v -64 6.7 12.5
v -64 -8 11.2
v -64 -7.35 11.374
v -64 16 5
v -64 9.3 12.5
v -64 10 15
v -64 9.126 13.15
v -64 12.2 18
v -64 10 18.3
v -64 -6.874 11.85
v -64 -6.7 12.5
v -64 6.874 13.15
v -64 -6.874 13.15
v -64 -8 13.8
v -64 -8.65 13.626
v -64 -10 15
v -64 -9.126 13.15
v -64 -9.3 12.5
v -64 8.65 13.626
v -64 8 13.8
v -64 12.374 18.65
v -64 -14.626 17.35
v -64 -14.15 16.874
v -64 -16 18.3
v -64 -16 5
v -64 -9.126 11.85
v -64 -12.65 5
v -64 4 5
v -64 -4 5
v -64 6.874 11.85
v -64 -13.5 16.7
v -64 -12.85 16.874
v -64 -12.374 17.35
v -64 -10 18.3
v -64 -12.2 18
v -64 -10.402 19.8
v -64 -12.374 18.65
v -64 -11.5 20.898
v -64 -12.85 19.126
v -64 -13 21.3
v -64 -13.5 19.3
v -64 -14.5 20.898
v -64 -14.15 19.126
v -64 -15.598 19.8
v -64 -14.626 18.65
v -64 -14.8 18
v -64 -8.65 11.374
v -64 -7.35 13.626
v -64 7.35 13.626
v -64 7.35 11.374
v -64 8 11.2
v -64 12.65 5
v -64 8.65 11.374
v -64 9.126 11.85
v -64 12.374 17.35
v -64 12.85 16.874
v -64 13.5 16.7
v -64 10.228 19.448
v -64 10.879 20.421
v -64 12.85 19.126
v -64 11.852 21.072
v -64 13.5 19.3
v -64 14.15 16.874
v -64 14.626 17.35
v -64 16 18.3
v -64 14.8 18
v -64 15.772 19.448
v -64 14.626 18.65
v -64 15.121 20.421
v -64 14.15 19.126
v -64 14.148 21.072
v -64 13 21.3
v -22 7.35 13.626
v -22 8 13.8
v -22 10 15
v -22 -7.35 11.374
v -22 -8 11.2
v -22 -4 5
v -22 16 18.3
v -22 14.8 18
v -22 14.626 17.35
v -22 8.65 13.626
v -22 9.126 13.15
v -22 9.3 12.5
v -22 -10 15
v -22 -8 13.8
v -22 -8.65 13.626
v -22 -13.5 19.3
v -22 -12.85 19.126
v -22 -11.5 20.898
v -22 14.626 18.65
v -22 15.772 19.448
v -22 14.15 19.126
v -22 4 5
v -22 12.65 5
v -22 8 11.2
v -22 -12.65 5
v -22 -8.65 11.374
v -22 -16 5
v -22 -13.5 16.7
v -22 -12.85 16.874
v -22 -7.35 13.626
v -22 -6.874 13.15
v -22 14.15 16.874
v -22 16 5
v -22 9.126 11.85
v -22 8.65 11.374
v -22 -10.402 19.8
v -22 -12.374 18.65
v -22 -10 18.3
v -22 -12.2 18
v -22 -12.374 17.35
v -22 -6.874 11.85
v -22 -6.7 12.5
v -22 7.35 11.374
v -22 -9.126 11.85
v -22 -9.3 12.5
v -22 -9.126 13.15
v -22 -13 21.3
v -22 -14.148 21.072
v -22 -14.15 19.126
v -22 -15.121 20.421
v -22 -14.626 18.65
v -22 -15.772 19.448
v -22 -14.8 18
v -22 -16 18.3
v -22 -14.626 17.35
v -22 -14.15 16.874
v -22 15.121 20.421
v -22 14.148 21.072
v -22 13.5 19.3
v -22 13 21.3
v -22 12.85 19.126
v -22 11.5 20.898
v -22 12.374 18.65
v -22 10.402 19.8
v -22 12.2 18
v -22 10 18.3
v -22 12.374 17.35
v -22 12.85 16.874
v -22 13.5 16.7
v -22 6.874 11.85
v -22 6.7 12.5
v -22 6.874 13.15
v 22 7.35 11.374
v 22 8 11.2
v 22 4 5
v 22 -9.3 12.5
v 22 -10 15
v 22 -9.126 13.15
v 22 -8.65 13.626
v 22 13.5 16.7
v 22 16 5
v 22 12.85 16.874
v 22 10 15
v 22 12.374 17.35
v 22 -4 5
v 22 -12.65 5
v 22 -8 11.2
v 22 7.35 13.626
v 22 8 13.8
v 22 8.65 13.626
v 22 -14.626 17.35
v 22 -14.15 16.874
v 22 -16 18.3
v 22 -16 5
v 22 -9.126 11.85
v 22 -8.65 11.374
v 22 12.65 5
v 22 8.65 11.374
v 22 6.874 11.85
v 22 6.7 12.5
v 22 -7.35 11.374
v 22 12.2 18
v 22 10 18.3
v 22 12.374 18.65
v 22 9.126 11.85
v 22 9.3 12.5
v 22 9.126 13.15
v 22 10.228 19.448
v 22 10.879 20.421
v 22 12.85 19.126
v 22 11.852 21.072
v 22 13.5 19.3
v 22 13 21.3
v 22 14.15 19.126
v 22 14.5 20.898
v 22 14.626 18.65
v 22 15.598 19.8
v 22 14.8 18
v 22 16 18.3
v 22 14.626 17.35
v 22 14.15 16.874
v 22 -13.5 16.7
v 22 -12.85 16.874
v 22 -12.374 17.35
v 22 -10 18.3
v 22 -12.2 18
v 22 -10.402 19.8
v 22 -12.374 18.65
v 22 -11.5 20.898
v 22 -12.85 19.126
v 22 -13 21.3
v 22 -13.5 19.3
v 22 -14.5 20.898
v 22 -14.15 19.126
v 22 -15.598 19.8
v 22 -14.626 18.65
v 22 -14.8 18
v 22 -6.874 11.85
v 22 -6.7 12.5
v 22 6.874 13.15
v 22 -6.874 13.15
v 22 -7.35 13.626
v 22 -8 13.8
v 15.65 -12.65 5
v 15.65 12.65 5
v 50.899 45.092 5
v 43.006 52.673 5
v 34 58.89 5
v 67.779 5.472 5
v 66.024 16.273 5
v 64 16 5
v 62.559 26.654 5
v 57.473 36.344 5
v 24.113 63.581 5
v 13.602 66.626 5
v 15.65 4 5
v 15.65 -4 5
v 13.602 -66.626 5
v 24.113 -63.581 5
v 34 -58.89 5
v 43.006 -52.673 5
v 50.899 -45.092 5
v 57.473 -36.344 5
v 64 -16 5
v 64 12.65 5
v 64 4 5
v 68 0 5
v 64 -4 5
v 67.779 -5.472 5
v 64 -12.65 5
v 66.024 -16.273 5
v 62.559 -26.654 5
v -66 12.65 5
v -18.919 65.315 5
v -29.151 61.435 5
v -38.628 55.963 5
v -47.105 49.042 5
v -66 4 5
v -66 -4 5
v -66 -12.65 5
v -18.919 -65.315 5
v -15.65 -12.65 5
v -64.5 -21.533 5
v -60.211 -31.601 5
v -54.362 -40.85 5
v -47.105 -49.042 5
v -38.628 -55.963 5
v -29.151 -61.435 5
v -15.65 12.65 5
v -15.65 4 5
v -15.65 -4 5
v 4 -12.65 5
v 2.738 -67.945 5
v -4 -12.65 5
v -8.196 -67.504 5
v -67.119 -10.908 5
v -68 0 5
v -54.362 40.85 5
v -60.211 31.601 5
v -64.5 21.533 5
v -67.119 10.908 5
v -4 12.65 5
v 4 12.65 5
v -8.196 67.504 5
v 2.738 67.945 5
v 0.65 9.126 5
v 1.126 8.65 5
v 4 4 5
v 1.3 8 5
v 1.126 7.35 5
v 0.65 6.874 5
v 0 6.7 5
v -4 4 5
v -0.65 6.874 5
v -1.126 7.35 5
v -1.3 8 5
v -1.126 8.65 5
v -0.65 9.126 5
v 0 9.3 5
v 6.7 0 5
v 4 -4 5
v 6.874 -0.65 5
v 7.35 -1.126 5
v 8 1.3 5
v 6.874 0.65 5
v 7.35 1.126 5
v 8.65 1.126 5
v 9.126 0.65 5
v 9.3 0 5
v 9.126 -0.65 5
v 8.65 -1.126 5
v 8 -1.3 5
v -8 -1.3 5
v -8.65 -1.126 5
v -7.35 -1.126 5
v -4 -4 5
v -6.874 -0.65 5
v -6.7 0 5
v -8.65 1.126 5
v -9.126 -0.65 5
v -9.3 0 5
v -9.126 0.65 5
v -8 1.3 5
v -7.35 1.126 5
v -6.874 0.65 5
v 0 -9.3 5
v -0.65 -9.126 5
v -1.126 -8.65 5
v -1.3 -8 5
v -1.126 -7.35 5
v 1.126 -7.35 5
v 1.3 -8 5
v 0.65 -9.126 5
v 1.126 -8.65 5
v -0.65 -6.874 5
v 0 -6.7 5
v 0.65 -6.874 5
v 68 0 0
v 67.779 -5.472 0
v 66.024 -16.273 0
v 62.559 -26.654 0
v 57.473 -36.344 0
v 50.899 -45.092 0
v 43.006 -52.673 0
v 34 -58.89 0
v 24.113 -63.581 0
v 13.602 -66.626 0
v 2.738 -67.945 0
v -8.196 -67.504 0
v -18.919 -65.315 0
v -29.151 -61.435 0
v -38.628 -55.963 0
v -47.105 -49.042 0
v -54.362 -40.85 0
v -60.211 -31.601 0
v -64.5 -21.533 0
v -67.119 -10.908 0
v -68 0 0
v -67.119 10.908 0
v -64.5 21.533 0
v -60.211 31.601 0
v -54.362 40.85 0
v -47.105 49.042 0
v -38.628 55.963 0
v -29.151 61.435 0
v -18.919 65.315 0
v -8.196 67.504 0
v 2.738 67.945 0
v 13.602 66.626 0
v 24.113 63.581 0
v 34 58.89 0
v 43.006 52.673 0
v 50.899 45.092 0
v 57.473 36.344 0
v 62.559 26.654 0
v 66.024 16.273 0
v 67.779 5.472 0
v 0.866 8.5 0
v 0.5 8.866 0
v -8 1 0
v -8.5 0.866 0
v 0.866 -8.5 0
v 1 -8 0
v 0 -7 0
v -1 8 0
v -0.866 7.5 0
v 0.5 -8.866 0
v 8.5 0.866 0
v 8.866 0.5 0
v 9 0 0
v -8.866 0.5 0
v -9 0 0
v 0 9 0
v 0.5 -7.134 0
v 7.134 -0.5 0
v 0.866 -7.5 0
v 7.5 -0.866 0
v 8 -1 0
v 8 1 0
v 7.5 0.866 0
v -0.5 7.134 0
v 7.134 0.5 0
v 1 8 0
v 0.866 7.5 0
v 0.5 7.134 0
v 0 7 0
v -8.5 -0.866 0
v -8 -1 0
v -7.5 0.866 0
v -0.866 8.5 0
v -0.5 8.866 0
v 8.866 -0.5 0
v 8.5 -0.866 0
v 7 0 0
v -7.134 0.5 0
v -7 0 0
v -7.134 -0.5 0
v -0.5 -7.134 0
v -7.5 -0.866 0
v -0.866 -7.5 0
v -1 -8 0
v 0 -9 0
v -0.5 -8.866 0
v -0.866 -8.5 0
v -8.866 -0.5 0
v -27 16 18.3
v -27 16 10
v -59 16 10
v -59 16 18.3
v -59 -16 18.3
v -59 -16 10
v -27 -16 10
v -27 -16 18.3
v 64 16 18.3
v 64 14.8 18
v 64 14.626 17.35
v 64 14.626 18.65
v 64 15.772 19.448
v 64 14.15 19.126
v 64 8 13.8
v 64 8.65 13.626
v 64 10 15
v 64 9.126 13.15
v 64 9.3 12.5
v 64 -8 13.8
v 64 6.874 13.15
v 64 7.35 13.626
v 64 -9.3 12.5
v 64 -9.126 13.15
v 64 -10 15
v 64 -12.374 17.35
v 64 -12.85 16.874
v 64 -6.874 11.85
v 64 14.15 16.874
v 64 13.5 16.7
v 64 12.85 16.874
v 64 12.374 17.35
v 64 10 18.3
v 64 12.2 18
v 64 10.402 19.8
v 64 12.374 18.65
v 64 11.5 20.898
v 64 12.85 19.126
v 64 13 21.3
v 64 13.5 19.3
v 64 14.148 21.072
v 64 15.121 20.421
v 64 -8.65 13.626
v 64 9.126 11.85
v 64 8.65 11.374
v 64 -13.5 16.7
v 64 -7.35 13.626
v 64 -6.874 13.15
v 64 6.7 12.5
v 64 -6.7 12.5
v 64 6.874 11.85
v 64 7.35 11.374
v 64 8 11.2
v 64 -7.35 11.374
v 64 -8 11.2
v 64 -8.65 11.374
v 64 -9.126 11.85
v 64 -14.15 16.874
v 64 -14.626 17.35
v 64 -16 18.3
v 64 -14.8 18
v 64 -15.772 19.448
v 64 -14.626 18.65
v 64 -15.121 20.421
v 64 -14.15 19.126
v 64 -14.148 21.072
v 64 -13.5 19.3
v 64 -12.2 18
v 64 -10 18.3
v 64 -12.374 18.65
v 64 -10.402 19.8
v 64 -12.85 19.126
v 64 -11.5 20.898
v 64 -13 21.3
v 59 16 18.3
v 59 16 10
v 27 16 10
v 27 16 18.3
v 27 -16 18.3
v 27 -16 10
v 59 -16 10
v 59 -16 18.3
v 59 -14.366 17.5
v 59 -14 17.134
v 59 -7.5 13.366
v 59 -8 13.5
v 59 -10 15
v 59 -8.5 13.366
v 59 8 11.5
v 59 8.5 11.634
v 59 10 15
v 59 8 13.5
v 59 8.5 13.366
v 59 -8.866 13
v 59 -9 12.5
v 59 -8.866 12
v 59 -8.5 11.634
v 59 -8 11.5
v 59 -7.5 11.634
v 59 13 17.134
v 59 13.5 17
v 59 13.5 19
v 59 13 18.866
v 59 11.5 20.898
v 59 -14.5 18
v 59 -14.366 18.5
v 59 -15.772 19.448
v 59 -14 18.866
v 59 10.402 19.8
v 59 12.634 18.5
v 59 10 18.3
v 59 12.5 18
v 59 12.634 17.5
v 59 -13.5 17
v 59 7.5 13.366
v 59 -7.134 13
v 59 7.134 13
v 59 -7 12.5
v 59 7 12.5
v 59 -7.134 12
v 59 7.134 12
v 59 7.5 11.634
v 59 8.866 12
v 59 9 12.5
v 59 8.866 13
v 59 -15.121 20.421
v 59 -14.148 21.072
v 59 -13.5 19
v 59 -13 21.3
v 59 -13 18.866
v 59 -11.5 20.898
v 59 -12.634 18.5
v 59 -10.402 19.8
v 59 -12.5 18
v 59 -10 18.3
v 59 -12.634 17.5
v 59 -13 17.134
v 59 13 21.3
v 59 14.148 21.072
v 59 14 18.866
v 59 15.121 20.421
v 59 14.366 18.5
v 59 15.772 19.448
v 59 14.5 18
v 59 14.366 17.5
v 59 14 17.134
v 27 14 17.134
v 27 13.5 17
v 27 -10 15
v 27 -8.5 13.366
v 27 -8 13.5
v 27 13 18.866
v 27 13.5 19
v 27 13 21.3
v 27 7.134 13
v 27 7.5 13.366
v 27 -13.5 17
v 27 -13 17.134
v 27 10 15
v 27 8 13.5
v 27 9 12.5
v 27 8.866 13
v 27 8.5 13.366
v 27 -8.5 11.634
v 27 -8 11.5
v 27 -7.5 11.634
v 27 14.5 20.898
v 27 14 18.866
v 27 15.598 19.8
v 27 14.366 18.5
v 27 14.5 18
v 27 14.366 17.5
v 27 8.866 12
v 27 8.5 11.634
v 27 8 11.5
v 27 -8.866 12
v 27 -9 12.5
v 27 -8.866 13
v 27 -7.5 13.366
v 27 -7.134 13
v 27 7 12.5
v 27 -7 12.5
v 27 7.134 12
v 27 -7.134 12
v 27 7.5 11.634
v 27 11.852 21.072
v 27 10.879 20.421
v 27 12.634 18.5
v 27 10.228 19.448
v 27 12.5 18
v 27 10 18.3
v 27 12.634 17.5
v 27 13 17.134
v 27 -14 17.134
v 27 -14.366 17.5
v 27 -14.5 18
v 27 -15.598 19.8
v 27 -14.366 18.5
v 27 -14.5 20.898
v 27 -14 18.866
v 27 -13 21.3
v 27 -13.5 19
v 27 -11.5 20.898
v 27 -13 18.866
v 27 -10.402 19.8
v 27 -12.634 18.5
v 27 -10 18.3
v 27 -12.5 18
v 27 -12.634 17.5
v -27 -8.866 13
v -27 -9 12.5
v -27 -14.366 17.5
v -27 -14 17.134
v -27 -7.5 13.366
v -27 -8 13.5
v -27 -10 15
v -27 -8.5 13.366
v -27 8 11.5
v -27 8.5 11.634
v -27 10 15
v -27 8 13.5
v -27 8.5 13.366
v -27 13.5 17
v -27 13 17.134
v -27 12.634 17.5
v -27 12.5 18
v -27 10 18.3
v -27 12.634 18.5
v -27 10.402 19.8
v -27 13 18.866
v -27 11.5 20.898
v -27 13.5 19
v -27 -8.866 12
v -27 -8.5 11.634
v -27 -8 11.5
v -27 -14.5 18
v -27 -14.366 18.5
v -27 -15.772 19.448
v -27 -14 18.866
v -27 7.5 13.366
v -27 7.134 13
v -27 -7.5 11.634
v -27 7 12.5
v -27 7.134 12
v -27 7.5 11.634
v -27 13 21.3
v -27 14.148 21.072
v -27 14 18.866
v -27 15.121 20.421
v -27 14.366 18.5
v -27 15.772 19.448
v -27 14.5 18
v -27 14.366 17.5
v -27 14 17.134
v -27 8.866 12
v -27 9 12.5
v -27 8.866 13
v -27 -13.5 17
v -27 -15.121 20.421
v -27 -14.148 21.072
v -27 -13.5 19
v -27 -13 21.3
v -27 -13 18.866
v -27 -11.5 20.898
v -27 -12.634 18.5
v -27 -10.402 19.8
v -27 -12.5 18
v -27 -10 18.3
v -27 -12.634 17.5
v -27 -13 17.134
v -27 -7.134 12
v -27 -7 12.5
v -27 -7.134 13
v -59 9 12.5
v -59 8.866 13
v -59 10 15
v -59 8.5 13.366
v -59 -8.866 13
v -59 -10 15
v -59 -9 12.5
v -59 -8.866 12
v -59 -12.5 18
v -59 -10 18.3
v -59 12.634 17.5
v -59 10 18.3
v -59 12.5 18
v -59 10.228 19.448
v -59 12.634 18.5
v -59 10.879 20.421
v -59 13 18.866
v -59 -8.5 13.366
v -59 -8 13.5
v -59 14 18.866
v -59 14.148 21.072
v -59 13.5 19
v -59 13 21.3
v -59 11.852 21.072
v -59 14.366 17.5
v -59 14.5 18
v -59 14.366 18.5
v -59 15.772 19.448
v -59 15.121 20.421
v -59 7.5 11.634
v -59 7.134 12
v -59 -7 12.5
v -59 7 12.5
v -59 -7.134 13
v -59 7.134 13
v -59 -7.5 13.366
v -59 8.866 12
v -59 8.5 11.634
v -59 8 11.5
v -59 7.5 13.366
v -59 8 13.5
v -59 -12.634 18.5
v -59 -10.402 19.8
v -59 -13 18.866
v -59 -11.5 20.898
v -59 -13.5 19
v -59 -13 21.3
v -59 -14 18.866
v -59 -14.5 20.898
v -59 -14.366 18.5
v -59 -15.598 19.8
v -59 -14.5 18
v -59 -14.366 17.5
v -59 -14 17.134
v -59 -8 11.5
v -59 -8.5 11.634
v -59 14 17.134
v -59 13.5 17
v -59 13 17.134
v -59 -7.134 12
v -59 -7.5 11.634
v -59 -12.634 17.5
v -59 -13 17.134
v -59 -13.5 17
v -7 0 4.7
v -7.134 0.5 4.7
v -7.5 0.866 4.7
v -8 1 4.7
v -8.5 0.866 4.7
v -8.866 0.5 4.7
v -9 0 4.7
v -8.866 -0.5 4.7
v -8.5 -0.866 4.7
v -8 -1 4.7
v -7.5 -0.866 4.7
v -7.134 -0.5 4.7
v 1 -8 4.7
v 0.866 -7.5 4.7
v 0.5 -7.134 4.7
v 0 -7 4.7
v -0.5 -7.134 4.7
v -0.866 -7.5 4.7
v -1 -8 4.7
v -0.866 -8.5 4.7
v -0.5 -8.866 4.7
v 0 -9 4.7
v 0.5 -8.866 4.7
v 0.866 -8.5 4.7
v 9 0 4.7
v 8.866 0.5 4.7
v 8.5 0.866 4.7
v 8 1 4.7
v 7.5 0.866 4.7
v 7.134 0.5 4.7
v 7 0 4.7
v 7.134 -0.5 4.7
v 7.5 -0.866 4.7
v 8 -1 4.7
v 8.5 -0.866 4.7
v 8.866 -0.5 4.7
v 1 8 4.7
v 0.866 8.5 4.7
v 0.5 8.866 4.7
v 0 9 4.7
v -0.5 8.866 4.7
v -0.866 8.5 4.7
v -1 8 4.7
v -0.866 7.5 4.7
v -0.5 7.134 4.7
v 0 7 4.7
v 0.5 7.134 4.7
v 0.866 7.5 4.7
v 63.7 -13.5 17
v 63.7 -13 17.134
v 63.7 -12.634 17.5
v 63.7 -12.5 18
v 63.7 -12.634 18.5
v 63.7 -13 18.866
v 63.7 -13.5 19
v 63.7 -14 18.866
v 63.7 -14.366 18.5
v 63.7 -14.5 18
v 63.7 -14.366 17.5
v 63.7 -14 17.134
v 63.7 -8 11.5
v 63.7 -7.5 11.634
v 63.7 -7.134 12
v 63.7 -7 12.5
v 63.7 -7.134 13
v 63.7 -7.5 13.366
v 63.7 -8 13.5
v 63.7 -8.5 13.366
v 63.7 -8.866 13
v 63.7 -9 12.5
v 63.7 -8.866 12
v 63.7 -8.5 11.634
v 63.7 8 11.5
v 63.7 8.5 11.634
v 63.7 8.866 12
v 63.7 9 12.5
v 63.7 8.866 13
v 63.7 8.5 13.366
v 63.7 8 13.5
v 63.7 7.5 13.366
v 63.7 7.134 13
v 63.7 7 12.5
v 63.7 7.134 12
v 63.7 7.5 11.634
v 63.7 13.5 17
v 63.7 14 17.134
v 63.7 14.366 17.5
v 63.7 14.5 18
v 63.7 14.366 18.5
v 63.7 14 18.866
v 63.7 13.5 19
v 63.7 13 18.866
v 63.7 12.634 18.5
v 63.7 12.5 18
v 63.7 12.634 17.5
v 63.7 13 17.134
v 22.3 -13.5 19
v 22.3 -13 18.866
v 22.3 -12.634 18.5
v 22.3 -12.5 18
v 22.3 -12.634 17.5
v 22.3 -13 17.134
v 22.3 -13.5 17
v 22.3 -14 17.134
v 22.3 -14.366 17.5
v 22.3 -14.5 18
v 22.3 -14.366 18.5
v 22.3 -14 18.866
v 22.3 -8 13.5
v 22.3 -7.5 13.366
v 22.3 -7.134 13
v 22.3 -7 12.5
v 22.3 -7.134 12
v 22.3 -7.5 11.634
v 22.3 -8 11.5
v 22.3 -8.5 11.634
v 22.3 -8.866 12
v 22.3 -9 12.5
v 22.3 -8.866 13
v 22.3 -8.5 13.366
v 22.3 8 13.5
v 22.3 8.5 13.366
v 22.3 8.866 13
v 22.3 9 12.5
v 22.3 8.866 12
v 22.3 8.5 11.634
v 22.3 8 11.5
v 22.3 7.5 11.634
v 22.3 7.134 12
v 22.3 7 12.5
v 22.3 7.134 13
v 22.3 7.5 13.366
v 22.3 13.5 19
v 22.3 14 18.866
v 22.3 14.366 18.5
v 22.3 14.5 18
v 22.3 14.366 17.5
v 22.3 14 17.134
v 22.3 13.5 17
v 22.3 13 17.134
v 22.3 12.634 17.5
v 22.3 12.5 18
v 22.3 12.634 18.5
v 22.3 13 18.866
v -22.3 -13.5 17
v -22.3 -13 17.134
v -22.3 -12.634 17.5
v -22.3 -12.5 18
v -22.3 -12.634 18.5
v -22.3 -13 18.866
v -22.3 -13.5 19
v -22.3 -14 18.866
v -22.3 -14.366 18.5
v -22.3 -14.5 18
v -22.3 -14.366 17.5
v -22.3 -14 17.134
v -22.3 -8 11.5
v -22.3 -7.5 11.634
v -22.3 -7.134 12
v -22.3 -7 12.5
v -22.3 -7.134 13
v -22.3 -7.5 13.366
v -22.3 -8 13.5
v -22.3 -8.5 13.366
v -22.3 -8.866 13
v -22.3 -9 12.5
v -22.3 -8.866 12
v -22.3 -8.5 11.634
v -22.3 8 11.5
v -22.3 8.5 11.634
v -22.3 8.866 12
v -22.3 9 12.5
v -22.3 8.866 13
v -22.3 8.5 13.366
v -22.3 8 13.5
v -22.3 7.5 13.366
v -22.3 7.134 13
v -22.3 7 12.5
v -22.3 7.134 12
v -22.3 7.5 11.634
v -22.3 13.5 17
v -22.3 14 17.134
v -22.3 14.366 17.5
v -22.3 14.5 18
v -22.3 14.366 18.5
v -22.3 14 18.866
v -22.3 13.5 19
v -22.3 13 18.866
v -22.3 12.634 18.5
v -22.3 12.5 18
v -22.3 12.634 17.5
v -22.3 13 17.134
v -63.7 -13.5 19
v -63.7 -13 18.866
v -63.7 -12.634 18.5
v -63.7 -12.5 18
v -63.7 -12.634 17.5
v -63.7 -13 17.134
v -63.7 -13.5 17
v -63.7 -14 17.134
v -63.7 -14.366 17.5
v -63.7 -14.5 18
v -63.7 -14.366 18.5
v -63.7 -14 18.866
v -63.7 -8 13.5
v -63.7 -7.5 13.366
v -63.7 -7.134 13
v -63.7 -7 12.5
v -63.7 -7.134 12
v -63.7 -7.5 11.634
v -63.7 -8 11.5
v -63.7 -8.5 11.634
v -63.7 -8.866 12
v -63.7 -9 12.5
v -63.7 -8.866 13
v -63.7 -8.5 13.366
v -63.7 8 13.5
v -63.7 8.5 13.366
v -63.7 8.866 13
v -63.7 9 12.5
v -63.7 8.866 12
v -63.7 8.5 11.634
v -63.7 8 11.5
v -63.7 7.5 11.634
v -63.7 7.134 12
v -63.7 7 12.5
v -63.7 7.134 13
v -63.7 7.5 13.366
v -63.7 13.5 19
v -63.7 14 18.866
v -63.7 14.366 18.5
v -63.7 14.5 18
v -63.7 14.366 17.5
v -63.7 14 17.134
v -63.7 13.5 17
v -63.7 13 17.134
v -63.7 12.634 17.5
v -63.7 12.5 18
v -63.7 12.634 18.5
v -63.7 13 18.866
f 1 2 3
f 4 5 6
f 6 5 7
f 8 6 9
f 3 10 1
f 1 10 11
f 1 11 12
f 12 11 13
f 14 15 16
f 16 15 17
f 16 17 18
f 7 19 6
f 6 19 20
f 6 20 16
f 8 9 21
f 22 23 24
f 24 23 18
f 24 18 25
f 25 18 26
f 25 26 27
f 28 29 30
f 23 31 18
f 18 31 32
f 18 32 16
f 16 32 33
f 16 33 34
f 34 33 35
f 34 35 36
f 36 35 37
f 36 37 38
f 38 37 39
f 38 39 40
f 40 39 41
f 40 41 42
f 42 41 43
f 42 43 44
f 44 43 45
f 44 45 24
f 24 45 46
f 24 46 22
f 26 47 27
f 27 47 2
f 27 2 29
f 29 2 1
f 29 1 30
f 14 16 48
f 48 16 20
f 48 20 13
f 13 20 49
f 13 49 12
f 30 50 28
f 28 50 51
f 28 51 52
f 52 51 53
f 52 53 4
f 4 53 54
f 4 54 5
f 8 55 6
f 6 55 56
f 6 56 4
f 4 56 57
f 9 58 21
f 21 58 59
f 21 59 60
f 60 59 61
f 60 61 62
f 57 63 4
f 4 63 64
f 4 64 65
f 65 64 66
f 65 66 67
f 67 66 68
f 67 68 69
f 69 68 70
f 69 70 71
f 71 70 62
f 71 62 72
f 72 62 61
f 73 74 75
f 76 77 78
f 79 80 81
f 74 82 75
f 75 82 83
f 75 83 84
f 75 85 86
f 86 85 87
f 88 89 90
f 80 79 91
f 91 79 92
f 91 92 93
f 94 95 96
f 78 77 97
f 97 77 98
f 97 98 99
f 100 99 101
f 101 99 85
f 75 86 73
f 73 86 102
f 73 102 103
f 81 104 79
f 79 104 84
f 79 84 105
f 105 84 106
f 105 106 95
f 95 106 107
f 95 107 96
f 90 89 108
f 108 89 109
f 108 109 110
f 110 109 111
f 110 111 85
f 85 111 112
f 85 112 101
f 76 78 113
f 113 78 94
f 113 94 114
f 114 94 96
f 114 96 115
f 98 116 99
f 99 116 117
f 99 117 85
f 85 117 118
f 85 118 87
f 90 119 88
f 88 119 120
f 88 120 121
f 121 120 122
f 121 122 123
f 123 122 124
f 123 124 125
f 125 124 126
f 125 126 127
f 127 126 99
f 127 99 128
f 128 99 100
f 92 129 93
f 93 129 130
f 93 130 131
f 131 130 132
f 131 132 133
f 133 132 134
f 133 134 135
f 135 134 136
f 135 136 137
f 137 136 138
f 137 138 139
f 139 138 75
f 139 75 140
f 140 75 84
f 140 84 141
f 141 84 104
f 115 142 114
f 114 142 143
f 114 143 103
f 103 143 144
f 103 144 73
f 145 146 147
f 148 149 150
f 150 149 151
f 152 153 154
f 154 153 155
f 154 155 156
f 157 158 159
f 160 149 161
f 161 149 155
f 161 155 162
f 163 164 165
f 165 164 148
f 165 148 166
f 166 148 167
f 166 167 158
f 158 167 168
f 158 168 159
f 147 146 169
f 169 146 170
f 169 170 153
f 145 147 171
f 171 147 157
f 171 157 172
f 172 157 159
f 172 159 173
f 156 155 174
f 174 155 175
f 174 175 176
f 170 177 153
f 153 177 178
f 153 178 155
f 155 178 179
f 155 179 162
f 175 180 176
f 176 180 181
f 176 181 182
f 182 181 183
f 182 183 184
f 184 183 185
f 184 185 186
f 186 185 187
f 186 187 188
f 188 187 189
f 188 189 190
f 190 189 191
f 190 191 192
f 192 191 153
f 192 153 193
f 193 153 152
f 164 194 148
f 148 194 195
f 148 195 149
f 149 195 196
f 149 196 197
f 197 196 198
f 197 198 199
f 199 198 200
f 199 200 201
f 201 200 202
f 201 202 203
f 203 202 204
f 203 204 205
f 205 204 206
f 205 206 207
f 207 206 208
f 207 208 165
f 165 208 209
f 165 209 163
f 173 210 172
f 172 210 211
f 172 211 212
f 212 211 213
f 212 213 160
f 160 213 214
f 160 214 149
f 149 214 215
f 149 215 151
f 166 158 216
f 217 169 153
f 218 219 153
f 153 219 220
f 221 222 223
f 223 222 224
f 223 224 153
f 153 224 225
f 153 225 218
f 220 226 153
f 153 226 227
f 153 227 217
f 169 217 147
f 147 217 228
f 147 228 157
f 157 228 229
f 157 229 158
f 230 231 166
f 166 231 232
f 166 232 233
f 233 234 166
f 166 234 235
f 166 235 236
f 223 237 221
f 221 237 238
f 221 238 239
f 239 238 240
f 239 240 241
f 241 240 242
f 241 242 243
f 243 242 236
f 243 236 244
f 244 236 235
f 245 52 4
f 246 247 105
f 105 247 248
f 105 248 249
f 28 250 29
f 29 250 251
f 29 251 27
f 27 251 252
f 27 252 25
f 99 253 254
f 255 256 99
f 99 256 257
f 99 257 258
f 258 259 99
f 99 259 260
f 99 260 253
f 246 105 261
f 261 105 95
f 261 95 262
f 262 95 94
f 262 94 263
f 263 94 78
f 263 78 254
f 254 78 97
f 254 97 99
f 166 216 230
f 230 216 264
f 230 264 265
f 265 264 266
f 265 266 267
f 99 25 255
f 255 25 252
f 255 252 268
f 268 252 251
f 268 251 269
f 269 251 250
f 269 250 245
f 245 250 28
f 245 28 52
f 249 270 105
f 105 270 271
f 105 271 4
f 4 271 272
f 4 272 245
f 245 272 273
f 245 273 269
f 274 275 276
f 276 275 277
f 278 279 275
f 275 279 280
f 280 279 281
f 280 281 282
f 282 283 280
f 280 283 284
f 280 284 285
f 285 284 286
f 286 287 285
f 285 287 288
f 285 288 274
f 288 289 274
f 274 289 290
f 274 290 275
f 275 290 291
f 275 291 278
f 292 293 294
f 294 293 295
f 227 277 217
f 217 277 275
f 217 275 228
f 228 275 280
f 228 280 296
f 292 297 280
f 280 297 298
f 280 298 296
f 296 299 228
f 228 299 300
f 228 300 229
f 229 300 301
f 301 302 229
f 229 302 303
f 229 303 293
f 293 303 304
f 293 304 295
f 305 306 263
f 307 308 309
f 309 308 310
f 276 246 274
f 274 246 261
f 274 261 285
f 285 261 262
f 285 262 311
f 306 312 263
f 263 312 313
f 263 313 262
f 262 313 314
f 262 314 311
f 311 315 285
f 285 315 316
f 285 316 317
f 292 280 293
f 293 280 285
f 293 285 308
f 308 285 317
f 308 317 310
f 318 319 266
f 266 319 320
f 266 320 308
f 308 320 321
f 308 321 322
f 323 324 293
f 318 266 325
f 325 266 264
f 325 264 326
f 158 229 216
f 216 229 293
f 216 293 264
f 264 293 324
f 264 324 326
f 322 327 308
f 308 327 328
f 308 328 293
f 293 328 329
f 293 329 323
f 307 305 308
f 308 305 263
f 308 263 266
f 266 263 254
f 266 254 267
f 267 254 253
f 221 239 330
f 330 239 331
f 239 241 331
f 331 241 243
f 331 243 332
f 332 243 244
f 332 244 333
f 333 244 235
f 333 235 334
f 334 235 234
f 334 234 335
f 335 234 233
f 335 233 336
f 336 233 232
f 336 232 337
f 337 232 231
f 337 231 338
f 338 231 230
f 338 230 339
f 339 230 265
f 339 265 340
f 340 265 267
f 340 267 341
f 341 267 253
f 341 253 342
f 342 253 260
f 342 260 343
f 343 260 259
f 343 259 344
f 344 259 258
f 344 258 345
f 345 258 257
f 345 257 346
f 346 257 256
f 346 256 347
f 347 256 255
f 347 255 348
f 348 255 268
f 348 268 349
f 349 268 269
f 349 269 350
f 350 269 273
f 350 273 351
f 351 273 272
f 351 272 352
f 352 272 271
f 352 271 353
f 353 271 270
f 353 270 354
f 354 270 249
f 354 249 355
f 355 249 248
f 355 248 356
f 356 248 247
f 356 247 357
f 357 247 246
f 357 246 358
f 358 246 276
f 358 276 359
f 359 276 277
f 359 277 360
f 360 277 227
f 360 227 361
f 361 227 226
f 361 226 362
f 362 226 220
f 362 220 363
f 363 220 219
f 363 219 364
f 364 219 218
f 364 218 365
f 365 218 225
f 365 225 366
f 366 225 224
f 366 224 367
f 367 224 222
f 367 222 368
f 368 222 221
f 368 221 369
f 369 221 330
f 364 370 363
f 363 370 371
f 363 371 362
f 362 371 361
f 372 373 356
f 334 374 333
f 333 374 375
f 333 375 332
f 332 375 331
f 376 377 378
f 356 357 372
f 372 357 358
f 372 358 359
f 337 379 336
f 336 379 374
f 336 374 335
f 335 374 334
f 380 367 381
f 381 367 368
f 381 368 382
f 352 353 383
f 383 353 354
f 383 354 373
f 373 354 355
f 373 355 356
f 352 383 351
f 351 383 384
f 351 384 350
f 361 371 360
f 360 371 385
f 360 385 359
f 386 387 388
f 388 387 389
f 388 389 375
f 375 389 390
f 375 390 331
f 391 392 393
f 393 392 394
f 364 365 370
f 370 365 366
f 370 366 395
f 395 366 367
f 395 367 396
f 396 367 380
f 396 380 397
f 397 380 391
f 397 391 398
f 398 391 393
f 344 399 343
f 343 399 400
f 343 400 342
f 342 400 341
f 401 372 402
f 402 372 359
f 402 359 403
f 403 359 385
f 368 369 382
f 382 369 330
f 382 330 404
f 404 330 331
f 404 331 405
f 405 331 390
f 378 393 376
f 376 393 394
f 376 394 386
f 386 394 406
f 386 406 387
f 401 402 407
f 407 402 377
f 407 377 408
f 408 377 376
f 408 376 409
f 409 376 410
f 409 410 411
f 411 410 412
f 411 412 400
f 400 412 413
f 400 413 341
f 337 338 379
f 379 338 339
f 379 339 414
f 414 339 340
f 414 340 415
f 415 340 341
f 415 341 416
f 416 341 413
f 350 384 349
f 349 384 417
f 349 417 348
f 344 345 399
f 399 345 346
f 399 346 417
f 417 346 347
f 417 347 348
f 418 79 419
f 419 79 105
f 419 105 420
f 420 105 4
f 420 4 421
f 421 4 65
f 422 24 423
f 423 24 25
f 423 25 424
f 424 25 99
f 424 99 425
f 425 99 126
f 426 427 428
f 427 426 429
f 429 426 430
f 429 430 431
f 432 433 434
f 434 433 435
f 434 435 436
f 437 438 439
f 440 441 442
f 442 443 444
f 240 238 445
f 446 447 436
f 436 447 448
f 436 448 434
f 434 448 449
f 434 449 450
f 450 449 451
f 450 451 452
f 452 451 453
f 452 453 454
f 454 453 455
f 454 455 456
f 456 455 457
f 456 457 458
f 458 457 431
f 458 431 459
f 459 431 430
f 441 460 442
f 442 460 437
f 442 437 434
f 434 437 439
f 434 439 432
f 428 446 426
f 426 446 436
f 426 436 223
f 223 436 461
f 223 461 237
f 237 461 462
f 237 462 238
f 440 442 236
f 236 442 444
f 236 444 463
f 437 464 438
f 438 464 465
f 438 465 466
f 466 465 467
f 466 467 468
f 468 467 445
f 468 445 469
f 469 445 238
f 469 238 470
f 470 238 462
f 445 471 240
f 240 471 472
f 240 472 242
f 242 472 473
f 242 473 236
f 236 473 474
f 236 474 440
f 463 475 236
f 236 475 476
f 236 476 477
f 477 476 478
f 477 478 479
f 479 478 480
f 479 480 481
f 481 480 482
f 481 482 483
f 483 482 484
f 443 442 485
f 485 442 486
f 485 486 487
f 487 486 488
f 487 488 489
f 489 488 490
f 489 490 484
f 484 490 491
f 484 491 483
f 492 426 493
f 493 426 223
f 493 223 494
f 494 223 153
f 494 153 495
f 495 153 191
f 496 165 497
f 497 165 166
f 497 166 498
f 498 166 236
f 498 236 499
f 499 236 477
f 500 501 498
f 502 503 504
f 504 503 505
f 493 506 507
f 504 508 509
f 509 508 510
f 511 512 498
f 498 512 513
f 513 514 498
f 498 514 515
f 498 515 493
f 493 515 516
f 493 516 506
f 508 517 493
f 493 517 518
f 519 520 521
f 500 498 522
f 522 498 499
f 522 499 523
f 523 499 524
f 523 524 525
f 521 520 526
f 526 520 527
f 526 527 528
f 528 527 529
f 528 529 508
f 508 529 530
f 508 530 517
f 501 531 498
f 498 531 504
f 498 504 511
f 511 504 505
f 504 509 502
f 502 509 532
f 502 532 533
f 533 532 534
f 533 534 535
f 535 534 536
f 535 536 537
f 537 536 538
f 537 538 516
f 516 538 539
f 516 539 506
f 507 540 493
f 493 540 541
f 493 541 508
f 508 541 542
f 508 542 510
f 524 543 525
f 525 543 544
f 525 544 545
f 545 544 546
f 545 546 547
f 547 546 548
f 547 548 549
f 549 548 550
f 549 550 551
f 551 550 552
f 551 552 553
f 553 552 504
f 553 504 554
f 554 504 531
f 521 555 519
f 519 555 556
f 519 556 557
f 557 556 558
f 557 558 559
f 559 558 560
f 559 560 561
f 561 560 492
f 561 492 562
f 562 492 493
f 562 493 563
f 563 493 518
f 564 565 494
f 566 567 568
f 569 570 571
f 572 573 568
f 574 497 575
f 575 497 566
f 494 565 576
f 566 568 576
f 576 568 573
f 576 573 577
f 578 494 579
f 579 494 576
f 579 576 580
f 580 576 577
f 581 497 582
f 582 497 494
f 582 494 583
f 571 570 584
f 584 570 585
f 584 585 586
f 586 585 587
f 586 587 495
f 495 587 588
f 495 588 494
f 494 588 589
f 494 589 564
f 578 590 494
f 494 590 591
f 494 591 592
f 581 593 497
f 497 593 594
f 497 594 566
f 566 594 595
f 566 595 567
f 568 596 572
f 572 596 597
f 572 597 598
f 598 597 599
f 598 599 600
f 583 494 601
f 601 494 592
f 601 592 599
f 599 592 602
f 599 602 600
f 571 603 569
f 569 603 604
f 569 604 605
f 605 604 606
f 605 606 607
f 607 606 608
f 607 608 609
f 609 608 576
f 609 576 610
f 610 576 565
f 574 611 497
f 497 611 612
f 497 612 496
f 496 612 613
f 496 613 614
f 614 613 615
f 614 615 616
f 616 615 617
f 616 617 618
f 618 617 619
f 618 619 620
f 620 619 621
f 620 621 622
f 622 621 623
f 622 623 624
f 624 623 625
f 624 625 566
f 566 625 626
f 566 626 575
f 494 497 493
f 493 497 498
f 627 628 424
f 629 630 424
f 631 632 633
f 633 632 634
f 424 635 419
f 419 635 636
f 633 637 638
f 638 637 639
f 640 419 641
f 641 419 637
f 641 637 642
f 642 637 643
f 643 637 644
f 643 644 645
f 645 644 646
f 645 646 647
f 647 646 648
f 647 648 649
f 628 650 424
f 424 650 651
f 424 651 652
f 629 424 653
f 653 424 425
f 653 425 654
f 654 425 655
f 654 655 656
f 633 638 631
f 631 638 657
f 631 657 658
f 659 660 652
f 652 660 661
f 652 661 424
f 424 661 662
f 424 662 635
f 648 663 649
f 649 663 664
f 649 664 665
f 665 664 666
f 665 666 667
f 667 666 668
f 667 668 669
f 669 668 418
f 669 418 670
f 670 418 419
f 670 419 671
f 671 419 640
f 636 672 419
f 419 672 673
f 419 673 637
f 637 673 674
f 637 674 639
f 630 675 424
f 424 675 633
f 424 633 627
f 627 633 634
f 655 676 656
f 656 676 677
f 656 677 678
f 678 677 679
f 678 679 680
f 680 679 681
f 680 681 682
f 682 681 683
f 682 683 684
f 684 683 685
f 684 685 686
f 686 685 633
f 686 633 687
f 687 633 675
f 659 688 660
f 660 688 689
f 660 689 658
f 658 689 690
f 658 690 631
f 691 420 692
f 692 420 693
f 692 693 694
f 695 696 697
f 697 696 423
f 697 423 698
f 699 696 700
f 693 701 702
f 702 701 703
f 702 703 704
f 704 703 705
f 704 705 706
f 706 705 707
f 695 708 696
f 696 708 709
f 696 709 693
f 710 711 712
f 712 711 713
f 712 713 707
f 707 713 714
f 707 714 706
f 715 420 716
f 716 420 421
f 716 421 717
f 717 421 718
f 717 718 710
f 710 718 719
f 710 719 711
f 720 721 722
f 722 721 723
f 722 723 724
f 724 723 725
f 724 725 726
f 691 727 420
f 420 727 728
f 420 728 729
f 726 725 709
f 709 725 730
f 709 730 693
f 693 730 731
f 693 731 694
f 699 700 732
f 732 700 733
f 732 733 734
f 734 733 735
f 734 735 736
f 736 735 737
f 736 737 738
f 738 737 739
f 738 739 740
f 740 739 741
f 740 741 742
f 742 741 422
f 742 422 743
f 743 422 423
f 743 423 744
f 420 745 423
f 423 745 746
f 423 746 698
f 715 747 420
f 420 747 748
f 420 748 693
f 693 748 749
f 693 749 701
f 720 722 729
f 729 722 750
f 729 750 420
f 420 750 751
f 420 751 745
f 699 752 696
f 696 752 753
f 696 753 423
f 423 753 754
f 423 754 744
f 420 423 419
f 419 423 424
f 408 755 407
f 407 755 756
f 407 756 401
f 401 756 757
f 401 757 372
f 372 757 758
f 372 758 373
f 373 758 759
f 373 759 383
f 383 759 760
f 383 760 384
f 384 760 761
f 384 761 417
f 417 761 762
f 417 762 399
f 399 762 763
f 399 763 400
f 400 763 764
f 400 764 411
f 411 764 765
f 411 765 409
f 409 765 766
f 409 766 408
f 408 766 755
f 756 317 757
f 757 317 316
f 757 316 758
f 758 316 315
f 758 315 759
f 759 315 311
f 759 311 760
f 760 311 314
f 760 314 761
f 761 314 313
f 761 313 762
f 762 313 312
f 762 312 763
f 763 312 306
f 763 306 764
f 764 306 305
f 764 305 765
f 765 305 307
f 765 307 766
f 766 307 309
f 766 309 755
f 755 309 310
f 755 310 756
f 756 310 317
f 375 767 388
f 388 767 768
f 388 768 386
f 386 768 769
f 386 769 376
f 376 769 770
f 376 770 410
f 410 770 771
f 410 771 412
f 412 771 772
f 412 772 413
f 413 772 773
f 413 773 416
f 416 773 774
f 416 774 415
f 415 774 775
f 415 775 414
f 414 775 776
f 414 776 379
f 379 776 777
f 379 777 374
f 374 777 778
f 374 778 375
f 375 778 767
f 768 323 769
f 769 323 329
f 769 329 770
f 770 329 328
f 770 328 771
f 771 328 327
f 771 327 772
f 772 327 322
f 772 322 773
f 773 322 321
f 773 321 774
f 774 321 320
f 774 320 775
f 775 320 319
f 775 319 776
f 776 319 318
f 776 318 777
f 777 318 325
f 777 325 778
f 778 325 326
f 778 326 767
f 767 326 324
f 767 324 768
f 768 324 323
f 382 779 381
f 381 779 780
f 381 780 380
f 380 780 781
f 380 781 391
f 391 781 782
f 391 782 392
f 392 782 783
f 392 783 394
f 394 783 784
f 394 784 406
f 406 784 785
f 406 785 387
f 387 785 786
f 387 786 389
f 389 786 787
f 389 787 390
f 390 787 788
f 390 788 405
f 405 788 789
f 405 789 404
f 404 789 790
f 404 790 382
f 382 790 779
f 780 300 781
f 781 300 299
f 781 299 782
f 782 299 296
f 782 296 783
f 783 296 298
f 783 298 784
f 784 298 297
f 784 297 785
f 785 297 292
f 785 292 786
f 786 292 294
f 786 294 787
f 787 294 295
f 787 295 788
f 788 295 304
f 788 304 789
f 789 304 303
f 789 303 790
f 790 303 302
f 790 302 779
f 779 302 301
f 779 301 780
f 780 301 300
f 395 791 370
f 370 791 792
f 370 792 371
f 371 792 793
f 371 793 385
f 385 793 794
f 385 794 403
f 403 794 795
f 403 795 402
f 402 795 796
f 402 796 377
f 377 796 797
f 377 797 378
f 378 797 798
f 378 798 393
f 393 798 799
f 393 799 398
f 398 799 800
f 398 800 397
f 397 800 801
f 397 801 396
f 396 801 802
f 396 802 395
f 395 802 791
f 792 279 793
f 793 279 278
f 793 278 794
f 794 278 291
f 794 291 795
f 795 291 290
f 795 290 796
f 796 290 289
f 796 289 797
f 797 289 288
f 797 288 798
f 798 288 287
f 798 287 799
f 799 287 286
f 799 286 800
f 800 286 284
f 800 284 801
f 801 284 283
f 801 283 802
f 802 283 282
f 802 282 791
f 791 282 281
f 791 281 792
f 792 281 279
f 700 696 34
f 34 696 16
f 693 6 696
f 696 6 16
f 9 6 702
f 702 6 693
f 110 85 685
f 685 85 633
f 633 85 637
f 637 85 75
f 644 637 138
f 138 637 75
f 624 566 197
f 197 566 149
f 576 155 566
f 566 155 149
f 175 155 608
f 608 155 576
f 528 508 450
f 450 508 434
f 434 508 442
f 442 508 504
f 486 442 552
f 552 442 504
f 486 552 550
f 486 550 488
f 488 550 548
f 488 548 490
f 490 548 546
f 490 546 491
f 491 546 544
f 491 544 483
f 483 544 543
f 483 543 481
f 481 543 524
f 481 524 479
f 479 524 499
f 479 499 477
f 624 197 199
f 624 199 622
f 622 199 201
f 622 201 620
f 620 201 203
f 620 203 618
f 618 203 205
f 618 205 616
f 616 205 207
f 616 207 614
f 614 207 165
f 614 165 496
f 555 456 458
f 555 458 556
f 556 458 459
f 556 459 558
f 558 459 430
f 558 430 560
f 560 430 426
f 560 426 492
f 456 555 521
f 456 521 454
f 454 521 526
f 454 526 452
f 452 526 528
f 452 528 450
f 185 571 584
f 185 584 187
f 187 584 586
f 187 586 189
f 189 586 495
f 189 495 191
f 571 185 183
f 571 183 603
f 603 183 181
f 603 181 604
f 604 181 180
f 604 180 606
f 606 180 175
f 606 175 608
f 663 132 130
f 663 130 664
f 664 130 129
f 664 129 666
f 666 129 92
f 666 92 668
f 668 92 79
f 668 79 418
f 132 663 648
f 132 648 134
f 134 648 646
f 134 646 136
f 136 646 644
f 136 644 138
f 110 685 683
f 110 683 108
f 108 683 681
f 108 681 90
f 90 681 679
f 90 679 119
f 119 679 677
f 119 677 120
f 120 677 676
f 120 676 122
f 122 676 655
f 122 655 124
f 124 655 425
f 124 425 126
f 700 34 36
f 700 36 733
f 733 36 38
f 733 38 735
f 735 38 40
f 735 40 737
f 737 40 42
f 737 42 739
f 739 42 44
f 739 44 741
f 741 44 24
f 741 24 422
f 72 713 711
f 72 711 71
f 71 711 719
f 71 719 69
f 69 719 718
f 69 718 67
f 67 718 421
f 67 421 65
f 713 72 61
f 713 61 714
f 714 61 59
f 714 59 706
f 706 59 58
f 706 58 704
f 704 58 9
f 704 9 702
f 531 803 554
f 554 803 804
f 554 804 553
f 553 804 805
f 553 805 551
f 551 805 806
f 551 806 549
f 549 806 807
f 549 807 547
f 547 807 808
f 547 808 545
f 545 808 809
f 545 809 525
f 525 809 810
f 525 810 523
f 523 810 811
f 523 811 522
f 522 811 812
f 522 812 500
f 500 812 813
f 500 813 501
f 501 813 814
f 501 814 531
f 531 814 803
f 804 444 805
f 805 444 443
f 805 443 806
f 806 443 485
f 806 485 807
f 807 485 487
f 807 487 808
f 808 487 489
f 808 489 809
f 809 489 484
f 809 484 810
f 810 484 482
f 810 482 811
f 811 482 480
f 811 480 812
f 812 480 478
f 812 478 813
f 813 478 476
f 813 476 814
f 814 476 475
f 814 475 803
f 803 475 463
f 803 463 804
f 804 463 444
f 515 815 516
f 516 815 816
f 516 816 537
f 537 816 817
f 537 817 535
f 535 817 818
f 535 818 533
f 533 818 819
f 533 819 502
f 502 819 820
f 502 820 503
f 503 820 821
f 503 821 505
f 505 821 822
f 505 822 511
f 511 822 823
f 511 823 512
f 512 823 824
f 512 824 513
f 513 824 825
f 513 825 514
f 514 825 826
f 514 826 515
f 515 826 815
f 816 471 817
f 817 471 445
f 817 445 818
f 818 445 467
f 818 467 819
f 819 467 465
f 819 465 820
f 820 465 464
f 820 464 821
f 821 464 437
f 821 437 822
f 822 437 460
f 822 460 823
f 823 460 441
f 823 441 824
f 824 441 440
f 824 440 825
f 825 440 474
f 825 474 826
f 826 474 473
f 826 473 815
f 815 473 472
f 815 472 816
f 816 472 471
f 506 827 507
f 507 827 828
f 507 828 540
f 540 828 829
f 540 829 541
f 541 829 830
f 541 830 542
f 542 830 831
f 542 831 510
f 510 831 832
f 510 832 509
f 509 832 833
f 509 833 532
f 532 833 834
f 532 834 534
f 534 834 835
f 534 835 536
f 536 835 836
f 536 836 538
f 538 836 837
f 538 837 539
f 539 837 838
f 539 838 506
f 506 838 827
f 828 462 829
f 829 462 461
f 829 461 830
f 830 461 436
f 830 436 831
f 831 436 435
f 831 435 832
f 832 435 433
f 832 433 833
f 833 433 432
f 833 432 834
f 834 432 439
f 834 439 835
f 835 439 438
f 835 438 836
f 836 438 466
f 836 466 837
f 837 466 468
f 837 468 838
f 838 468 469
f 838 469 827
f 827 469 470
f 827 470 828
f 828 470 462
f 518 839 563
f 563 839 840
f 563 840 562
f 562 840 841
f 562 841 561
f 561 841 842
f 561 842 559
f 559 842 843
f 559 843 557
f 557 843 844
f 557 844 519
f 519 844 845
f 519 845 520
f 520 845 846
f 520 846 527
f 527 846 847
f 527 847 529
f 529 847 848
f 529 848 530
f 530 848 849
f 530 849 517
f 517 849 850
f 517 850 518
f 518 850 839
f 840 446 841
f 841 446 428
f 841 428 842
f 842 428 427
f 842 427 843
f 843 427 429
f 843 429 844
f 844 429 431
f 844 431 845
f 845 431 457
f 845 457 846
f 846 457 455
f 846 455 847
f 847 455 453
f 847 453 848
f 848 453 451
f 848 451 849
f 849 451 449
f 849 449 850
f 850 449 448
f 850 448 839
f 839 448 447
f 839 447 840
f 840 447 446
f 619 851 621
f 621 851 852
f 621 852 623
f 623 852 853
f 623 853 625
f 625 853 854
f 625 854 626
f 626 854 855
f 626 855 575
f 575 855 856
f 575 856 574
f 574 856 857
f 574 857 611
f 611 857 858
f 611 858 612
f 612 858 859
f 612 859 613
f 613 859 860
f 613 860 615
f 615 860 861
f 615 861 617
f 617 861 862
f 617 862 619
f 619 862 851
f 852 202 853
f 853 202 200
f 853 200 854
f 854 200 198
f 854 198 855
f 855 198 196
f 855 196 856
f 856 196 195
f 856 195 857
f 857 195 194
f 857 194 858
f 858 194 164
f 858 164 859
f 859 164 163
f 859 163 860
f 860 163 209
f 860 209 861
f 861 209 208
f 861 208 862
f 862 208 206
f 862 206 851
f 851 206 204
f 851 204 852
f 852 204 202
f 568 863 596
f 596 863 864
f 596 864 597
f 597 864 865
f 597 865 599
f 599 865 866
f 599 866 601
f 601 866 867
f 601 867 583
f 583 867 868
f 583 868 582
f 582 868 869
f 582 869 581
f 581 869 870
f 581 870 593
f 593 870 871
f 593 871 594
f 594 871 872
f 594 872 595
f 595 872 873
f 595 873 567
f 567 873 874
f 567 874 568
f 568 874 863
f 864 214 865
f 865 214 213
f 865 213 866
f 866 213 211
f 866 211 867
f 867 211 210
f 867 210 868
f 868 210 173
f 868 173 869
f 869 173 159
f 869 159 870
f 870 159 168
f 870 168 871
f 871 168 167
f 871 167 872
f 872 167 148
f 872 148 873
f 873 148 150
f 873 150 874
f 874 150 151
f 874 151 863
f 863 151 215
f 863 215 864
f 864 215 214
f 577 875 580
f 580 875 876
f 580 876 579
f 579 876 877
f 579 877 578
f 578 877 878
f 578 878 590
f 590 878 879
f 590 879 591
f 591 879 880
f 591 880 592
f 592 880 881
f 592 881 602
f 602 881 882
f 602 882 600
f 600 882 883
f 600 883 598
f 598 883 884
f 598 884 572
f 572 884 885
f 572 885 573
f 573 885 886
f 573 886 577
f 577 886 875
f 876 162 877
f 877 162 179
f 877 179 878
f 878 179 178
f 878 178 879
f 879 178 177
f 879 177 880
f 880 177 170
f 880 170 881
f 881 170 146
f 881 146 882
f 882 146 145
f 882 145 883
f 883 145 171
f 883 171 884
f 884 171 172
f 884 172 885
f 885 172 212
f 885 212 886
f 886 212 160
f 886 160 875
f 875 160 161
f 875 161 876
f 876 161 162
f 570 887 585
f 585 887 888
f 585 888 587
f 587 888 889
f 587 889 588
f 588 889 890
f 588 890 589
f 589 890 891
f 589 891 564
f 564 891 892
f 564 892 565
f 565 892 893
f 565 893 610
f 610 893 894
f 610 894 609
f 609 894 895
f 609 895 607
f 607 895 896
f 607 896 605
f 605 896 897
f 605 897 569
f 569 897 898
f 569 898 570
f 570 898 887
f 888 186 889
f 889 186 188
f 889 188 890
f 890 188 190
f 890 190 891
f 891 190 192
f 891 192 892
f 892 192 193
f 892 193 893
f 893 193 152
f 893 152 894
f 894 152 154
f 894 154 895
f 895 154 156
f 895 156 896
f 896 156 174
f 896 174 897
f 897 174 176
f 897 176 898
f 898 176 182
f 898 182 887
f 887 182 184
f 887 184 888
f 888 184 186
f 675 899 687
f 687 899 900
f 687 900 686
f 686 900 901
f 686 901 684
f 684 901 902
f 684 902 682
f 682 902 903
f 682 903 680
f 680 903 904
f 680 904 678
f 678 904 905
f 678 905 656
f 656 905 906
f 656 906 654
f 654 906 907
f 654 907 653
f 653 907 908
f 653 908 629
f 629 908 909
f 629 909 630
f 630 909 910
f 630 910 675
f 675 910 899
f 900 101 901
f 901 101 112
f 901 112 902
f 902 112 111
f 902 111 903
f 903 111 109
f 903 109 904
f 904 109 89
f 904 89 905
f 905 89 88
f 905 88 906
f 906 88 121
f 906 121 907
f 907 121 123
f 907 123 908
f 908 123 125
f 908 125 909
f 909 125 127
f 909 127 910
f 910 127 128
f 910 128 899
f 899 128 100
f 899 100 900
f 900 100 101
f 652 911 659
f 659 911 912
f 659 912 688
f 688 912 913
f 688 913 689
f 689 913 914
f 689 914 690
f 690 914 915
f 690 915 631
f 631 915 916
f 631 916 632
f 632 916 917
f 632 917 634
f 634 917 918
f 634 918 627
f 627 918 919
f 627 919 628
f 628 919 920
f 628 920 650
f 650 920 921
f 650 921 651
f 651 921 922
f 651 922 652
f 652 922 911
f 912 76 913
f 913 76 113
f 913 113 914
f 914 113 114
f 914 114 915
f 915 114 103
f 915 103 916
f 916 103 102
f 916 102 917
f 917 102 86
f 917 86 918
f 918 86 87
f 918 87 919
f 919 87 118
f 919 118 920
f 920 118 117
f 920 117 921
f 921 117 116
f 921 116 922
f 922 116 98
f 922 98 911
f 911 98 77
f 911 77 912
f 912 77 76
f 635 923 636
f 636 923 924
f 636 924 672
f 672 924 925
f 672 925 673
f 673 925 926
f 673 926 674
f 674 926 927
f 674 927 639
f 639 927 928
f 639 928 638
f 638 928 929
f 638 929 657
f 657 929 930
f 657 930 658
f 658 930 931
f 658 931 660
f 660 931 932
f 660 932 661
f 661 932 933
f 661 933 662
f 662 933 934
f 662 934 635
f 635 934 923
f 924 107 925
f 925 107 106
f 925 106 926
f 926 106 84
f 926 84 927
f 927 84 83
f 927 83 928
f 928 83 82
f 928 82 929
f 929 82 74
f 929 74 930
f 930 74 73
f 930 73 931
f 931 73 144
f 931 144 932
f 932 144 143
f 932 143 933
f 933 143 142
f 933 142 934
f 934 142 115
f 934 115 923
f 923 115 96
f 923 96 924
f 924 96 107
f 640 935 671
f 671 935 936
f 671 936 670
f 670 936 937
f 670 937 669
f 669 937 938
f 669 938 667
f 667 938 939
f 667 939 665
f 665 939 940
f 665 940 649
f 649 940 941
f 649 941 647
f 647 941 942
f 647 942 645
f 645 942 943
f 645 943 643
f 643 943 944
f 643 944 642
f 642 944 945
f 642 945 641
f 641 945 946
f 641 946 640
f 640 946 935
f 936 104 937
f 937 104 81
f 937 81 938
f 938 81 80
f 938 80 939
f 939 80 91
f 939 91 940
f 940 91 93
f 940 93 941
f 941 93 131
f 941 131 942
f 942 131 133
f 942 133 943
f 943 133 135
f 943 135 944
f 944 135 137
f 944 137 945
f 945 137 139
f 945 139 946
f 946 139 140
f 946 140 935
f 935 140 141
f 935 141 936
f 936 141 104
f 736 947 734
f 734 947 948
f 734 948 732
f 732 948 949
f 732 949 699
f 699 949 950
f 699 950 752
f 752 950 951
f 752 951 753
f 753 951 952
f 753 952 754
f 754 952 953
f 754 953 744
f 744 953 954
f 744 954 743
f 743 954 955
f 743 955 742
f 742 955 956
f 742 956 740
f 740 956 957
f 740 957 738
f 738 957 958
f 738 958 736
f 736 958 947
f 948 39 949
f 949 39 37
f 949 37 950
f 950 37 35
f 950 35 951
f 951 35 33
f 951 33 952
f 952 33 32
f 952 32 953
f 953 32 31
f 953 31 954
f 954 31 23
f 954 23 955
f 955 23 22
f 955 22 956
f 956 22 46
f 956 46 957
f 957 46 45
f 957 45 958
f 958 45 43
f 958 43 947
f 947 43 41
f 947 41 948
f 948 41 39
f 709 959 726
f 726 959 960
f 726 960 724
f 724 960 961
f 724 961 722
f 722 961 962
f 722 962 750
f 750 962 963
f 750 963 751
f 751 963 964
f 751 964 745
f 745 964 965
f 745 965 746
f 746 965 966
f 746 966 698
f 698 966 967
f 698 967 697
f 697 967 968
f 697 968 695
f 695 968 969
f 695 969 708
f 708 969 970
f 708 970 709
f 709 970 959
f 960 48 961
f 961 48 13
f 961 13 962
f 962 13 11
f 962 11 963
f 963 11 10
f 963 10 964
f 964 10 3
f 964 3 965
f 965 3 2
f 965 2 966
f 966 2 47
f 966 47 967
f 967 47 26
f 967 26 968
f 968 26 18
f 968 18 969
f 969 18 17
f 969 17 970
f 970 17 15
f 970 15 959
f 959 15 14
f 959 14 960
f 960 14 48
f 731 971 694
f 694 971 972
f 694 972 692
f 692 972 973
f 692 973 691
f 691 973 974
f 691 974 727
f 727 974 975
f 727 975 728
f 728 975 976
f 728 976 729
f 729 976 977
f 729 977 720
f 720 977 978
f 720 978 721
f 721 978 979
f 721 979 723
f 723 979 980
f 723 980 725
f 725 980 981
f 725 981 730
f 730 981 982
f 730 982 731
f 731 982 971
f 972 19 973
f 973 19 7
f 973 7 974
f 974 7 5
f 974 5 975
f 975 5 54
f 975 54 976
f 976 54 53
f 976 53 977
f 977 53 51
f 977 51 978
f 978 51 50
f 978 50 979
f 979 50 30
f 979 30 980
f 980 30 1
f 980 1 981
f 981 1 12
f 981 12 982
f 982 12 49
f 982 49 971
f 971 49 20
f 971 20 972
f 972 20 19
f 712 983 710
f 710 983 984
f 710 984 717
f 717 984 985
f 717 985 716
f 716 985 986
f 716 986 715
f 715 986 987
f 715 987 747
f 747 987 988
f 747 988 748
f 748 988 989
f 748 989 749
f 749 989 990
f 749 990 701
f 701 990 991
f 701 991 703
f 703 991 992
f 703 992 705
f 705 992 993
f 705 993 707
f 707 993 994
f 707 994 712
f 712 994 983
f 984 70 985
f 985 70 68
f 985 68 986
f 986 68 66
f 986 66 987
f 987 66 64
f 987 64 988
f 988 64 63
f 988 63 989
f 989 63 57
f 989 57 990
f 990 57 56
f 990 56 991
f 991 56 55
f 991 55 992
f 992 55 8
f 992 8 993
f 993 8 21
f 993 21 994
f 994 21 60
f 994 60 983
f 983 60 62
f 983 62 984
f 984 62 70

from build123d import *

# Parameters (mm, degrees)
IZIM1_R                                        = 68
Y_KSEKLIK_EKSTR_ZYON1_DEPTH                    = 5
IZIM2_W                                        = 42
IZIM2_H                                        = 32
Y_KSEKLIK_EKSTR_ZYON2_DEPTH                    = 16.3
IZIM3_W                                        = 32
IZIM3_H                                        = 32
KES_EKSTR_ZYON1_DEPTH                          = 11.3
M2_D_Z_BA_L_MAKINE_VIDAS_IN_HAV_A2_D           = 2
M2_D_Z_BA_L_MAKINE_VIDAS_IN_HAV_A2_CSINK_D     = 2.6
M2_D_Z_BA_L_MAKINE_VIDAS_IN_HAV_A2_CSINK_ANGLE = 90
IZIM9_W                                        = 6.3
IZIM9_H                                        = 20
KES_EKSTR_ZYON2_DEPTH                          = 151.005633228
RADYUS1_R                                      = 3
M2_D_Z_BA_L_MAKINE_VIDAS_IN_HAV_A3_D           = 2
M2_D_Z_BA_L_MAKINE_VIDAS_IN_HAV_A3_DEPTH       = 5
M2_D_Z_BA_L_MAKINE_VIDAS_IN_HAV_A3_CSINK_D     = 2.6
M2_D_Z_BA_L_MAKINE_VIDAS_IN_HAV_A3_CSINK_ANGLE = 90
AYNALAMA2_COPY_1_D                             = 2
AYNALAMA2_COPY_1_DEPTH                         = 5
AYNALAMA2_COPY_1_CSINK_D                       = 2.6
AYNALAMA2_COPY_1_CSINK_ANGLE                   = 90


with BuildPart() as part:
    # Çizim1 → Yükseklik-Ekstrüzyon1 (new body)
    with BuildSketch(Plane.XY):
        Circle(IZIM1_R)
    extrude(amount=Y_KSEKLIK_EKSTR_ZYON1_DEPTH)

    # Çizim2 → Yükseklik-Ekstrüzyon2 (add)
    with BuildSketch(Plane.XY.offset(5)):
        with Locations((-43, 0)):
            Rectangle(IZIM2_W, IZIM2_H)
        with Locations((43, 0)):
            Rectangle(IZIM2_W, IZIM2_H)
    extrude(amount=Y_KSEKLIK_EKSTR_ZYON2_DEPTH)

    # Çizim3 → Kes-Ekstrüzyon1 (cut)
    with BuildSketch(Plane.XY.offset(21.3)):
        with Locations((-43, 0)):
            Rectangle(IZIM3_W, IZIM3_H)
        with Locations((43, 0)):
            Rectangle(IZIM3_W, IZIM3_H)
    extrude(amount=-KES_EKSTR_ZYON1_DEPTH, mode=Mode.SUBTRACT)

    # M2 Düz Başlı Makine Vidası İçin Havşa2 (through all)
    with Locations(Plane(origin=(0, 8, 5), x_dir=(1, 0, 0), z_dir=(0, 0, 1))):
        with Locations((0, 0), (8, -8), (0, -16), (-8, -8)):
            CounterSinkHole(M2_D_Z_BA_L_MAKINE_VIDAS_IN_HAV_A2_D / 2, M2_D_Z_BA_L_MAKINE_VIDAS_IN_HAV_A2_CSINK_D / 2, counter_sink_angle=M2_D_Z_BA_L_MAKINE_VIDAS_IN_HAV_A2_CSINK_ANGLE)

    # Çizim9 → Kes-Ekstrüzyon2 (cut, through all)
    with BuildSketch(Plane(origin=(64, 0, 0), x_dir=(0, 0, -1), z_dir=(1, 0, 0))):
        with Locations((-18.15, 0)):
            Rectangle(IZIM9_W, IZIM9_H)
    extrude(amount=-KES_EKSTR_ZYON2_DEPTH, mode=Mode.SUBTRACT)

    # Radyus1
    radyus1_edges = [part.edges().sort_by_distance(p)[0] for p in [
        (-61.5, 10, 21.3),
        (-61.5, 16, 21.3),
        (61.5, -16, 21.3),
        (61.5, -10, 21.3),
        (24.5, -16, 21.3),
        (24.5, -10, 21.3),
        (61.5, 10, 21.3),
        (24.5, 10, 21.3),
        (24.5, 16, 21.3),
        (61.5, 16, 21.3),
        (-24.5, 10, 21.3),
        (-24.5, 16, 21.3),
        (-24.5, -16, 21.3),
        (-24.5, -10, 21.3),
        (-61.5, -16, 21.3),
        (-61.5, -10, 21.3),
    ]]
    fillet(radyus1_edges, radius=RADYUS1_R - 0.0001)  # a hair under: the kernel refuses the full size

    # M2 Düz Başlı Makine Vidası İçin Havşa3
    with Locations(Plane(origin=(64, 13.5, 18), x_dir=(0, 1, 0), z_dir=(1, 0, 0))):
        with Locations((0, 0), (-5.5, -5.5), (-21.5, -5.5), (-27, 0)):
            m2_d_z_ba_l_makine_vidas_in_hav_a3 = CounterSinkHole(M2_D_Z_BA_L_MAKINE_VIDAS_IN_HAV_A3_D / 2, M2_D_Z_BA_L_MAKINE_VIDAS_IN_HAV_A3_CSINK_D / 2, depth=M2_D_Z_BA_L_MAKINE_VIDAS_IN_HAV_A3_DEPTH, counter_sink_angle=M2_D_Z_BA_L_MAKINE_VIDAS_IN_HAV_A3_CSINK_ANGLE)

    # Aynalama1: M2 Düz Başlı Makine Vidası İçin Havşa3 across plane
    add(m2_d_z_ba_l_makine_vidas_in_hav_a3.mirror(Plane(origin=(43, 0, 0), x_dir=(0, 0, 1), z_dir=(1, 0, 0))), mode=Mode.SUBTRACT)

    # Aynalama2: M2 Düz Başlı Makine Vidası İçin Havşa3 across plane
    add(m2_d_z_ba_l_makine_vidas_in_hav_a3.mirror(Plane(origin=(0, 0, 0), x_dir=(0, 0, 1), z_dir=(1, 0, 0))), mode=Mode.SUBTRACT)

    # Aynalama2 copy 1
    with Locations(Plane(origin=(-22, 13.5, 18), x_dir=(0, 1, 0), z_dir=(1, 0, 0))):
        with Locations((0, 0), (-5.5, -5.5), (-21.5, -5.5), (-27, 0)):
            CounterSinkHole(AYNALAMA2_COPY_1_D / 2, AYNALAMA2_COPY_1_CSINK_D / 2, depth=AYNALAMA2_COPY_1_DEPTH, counter_sink_angle=AYNALAMA2_COPY_1_CSINK_ANGLE)


solid = part.part
